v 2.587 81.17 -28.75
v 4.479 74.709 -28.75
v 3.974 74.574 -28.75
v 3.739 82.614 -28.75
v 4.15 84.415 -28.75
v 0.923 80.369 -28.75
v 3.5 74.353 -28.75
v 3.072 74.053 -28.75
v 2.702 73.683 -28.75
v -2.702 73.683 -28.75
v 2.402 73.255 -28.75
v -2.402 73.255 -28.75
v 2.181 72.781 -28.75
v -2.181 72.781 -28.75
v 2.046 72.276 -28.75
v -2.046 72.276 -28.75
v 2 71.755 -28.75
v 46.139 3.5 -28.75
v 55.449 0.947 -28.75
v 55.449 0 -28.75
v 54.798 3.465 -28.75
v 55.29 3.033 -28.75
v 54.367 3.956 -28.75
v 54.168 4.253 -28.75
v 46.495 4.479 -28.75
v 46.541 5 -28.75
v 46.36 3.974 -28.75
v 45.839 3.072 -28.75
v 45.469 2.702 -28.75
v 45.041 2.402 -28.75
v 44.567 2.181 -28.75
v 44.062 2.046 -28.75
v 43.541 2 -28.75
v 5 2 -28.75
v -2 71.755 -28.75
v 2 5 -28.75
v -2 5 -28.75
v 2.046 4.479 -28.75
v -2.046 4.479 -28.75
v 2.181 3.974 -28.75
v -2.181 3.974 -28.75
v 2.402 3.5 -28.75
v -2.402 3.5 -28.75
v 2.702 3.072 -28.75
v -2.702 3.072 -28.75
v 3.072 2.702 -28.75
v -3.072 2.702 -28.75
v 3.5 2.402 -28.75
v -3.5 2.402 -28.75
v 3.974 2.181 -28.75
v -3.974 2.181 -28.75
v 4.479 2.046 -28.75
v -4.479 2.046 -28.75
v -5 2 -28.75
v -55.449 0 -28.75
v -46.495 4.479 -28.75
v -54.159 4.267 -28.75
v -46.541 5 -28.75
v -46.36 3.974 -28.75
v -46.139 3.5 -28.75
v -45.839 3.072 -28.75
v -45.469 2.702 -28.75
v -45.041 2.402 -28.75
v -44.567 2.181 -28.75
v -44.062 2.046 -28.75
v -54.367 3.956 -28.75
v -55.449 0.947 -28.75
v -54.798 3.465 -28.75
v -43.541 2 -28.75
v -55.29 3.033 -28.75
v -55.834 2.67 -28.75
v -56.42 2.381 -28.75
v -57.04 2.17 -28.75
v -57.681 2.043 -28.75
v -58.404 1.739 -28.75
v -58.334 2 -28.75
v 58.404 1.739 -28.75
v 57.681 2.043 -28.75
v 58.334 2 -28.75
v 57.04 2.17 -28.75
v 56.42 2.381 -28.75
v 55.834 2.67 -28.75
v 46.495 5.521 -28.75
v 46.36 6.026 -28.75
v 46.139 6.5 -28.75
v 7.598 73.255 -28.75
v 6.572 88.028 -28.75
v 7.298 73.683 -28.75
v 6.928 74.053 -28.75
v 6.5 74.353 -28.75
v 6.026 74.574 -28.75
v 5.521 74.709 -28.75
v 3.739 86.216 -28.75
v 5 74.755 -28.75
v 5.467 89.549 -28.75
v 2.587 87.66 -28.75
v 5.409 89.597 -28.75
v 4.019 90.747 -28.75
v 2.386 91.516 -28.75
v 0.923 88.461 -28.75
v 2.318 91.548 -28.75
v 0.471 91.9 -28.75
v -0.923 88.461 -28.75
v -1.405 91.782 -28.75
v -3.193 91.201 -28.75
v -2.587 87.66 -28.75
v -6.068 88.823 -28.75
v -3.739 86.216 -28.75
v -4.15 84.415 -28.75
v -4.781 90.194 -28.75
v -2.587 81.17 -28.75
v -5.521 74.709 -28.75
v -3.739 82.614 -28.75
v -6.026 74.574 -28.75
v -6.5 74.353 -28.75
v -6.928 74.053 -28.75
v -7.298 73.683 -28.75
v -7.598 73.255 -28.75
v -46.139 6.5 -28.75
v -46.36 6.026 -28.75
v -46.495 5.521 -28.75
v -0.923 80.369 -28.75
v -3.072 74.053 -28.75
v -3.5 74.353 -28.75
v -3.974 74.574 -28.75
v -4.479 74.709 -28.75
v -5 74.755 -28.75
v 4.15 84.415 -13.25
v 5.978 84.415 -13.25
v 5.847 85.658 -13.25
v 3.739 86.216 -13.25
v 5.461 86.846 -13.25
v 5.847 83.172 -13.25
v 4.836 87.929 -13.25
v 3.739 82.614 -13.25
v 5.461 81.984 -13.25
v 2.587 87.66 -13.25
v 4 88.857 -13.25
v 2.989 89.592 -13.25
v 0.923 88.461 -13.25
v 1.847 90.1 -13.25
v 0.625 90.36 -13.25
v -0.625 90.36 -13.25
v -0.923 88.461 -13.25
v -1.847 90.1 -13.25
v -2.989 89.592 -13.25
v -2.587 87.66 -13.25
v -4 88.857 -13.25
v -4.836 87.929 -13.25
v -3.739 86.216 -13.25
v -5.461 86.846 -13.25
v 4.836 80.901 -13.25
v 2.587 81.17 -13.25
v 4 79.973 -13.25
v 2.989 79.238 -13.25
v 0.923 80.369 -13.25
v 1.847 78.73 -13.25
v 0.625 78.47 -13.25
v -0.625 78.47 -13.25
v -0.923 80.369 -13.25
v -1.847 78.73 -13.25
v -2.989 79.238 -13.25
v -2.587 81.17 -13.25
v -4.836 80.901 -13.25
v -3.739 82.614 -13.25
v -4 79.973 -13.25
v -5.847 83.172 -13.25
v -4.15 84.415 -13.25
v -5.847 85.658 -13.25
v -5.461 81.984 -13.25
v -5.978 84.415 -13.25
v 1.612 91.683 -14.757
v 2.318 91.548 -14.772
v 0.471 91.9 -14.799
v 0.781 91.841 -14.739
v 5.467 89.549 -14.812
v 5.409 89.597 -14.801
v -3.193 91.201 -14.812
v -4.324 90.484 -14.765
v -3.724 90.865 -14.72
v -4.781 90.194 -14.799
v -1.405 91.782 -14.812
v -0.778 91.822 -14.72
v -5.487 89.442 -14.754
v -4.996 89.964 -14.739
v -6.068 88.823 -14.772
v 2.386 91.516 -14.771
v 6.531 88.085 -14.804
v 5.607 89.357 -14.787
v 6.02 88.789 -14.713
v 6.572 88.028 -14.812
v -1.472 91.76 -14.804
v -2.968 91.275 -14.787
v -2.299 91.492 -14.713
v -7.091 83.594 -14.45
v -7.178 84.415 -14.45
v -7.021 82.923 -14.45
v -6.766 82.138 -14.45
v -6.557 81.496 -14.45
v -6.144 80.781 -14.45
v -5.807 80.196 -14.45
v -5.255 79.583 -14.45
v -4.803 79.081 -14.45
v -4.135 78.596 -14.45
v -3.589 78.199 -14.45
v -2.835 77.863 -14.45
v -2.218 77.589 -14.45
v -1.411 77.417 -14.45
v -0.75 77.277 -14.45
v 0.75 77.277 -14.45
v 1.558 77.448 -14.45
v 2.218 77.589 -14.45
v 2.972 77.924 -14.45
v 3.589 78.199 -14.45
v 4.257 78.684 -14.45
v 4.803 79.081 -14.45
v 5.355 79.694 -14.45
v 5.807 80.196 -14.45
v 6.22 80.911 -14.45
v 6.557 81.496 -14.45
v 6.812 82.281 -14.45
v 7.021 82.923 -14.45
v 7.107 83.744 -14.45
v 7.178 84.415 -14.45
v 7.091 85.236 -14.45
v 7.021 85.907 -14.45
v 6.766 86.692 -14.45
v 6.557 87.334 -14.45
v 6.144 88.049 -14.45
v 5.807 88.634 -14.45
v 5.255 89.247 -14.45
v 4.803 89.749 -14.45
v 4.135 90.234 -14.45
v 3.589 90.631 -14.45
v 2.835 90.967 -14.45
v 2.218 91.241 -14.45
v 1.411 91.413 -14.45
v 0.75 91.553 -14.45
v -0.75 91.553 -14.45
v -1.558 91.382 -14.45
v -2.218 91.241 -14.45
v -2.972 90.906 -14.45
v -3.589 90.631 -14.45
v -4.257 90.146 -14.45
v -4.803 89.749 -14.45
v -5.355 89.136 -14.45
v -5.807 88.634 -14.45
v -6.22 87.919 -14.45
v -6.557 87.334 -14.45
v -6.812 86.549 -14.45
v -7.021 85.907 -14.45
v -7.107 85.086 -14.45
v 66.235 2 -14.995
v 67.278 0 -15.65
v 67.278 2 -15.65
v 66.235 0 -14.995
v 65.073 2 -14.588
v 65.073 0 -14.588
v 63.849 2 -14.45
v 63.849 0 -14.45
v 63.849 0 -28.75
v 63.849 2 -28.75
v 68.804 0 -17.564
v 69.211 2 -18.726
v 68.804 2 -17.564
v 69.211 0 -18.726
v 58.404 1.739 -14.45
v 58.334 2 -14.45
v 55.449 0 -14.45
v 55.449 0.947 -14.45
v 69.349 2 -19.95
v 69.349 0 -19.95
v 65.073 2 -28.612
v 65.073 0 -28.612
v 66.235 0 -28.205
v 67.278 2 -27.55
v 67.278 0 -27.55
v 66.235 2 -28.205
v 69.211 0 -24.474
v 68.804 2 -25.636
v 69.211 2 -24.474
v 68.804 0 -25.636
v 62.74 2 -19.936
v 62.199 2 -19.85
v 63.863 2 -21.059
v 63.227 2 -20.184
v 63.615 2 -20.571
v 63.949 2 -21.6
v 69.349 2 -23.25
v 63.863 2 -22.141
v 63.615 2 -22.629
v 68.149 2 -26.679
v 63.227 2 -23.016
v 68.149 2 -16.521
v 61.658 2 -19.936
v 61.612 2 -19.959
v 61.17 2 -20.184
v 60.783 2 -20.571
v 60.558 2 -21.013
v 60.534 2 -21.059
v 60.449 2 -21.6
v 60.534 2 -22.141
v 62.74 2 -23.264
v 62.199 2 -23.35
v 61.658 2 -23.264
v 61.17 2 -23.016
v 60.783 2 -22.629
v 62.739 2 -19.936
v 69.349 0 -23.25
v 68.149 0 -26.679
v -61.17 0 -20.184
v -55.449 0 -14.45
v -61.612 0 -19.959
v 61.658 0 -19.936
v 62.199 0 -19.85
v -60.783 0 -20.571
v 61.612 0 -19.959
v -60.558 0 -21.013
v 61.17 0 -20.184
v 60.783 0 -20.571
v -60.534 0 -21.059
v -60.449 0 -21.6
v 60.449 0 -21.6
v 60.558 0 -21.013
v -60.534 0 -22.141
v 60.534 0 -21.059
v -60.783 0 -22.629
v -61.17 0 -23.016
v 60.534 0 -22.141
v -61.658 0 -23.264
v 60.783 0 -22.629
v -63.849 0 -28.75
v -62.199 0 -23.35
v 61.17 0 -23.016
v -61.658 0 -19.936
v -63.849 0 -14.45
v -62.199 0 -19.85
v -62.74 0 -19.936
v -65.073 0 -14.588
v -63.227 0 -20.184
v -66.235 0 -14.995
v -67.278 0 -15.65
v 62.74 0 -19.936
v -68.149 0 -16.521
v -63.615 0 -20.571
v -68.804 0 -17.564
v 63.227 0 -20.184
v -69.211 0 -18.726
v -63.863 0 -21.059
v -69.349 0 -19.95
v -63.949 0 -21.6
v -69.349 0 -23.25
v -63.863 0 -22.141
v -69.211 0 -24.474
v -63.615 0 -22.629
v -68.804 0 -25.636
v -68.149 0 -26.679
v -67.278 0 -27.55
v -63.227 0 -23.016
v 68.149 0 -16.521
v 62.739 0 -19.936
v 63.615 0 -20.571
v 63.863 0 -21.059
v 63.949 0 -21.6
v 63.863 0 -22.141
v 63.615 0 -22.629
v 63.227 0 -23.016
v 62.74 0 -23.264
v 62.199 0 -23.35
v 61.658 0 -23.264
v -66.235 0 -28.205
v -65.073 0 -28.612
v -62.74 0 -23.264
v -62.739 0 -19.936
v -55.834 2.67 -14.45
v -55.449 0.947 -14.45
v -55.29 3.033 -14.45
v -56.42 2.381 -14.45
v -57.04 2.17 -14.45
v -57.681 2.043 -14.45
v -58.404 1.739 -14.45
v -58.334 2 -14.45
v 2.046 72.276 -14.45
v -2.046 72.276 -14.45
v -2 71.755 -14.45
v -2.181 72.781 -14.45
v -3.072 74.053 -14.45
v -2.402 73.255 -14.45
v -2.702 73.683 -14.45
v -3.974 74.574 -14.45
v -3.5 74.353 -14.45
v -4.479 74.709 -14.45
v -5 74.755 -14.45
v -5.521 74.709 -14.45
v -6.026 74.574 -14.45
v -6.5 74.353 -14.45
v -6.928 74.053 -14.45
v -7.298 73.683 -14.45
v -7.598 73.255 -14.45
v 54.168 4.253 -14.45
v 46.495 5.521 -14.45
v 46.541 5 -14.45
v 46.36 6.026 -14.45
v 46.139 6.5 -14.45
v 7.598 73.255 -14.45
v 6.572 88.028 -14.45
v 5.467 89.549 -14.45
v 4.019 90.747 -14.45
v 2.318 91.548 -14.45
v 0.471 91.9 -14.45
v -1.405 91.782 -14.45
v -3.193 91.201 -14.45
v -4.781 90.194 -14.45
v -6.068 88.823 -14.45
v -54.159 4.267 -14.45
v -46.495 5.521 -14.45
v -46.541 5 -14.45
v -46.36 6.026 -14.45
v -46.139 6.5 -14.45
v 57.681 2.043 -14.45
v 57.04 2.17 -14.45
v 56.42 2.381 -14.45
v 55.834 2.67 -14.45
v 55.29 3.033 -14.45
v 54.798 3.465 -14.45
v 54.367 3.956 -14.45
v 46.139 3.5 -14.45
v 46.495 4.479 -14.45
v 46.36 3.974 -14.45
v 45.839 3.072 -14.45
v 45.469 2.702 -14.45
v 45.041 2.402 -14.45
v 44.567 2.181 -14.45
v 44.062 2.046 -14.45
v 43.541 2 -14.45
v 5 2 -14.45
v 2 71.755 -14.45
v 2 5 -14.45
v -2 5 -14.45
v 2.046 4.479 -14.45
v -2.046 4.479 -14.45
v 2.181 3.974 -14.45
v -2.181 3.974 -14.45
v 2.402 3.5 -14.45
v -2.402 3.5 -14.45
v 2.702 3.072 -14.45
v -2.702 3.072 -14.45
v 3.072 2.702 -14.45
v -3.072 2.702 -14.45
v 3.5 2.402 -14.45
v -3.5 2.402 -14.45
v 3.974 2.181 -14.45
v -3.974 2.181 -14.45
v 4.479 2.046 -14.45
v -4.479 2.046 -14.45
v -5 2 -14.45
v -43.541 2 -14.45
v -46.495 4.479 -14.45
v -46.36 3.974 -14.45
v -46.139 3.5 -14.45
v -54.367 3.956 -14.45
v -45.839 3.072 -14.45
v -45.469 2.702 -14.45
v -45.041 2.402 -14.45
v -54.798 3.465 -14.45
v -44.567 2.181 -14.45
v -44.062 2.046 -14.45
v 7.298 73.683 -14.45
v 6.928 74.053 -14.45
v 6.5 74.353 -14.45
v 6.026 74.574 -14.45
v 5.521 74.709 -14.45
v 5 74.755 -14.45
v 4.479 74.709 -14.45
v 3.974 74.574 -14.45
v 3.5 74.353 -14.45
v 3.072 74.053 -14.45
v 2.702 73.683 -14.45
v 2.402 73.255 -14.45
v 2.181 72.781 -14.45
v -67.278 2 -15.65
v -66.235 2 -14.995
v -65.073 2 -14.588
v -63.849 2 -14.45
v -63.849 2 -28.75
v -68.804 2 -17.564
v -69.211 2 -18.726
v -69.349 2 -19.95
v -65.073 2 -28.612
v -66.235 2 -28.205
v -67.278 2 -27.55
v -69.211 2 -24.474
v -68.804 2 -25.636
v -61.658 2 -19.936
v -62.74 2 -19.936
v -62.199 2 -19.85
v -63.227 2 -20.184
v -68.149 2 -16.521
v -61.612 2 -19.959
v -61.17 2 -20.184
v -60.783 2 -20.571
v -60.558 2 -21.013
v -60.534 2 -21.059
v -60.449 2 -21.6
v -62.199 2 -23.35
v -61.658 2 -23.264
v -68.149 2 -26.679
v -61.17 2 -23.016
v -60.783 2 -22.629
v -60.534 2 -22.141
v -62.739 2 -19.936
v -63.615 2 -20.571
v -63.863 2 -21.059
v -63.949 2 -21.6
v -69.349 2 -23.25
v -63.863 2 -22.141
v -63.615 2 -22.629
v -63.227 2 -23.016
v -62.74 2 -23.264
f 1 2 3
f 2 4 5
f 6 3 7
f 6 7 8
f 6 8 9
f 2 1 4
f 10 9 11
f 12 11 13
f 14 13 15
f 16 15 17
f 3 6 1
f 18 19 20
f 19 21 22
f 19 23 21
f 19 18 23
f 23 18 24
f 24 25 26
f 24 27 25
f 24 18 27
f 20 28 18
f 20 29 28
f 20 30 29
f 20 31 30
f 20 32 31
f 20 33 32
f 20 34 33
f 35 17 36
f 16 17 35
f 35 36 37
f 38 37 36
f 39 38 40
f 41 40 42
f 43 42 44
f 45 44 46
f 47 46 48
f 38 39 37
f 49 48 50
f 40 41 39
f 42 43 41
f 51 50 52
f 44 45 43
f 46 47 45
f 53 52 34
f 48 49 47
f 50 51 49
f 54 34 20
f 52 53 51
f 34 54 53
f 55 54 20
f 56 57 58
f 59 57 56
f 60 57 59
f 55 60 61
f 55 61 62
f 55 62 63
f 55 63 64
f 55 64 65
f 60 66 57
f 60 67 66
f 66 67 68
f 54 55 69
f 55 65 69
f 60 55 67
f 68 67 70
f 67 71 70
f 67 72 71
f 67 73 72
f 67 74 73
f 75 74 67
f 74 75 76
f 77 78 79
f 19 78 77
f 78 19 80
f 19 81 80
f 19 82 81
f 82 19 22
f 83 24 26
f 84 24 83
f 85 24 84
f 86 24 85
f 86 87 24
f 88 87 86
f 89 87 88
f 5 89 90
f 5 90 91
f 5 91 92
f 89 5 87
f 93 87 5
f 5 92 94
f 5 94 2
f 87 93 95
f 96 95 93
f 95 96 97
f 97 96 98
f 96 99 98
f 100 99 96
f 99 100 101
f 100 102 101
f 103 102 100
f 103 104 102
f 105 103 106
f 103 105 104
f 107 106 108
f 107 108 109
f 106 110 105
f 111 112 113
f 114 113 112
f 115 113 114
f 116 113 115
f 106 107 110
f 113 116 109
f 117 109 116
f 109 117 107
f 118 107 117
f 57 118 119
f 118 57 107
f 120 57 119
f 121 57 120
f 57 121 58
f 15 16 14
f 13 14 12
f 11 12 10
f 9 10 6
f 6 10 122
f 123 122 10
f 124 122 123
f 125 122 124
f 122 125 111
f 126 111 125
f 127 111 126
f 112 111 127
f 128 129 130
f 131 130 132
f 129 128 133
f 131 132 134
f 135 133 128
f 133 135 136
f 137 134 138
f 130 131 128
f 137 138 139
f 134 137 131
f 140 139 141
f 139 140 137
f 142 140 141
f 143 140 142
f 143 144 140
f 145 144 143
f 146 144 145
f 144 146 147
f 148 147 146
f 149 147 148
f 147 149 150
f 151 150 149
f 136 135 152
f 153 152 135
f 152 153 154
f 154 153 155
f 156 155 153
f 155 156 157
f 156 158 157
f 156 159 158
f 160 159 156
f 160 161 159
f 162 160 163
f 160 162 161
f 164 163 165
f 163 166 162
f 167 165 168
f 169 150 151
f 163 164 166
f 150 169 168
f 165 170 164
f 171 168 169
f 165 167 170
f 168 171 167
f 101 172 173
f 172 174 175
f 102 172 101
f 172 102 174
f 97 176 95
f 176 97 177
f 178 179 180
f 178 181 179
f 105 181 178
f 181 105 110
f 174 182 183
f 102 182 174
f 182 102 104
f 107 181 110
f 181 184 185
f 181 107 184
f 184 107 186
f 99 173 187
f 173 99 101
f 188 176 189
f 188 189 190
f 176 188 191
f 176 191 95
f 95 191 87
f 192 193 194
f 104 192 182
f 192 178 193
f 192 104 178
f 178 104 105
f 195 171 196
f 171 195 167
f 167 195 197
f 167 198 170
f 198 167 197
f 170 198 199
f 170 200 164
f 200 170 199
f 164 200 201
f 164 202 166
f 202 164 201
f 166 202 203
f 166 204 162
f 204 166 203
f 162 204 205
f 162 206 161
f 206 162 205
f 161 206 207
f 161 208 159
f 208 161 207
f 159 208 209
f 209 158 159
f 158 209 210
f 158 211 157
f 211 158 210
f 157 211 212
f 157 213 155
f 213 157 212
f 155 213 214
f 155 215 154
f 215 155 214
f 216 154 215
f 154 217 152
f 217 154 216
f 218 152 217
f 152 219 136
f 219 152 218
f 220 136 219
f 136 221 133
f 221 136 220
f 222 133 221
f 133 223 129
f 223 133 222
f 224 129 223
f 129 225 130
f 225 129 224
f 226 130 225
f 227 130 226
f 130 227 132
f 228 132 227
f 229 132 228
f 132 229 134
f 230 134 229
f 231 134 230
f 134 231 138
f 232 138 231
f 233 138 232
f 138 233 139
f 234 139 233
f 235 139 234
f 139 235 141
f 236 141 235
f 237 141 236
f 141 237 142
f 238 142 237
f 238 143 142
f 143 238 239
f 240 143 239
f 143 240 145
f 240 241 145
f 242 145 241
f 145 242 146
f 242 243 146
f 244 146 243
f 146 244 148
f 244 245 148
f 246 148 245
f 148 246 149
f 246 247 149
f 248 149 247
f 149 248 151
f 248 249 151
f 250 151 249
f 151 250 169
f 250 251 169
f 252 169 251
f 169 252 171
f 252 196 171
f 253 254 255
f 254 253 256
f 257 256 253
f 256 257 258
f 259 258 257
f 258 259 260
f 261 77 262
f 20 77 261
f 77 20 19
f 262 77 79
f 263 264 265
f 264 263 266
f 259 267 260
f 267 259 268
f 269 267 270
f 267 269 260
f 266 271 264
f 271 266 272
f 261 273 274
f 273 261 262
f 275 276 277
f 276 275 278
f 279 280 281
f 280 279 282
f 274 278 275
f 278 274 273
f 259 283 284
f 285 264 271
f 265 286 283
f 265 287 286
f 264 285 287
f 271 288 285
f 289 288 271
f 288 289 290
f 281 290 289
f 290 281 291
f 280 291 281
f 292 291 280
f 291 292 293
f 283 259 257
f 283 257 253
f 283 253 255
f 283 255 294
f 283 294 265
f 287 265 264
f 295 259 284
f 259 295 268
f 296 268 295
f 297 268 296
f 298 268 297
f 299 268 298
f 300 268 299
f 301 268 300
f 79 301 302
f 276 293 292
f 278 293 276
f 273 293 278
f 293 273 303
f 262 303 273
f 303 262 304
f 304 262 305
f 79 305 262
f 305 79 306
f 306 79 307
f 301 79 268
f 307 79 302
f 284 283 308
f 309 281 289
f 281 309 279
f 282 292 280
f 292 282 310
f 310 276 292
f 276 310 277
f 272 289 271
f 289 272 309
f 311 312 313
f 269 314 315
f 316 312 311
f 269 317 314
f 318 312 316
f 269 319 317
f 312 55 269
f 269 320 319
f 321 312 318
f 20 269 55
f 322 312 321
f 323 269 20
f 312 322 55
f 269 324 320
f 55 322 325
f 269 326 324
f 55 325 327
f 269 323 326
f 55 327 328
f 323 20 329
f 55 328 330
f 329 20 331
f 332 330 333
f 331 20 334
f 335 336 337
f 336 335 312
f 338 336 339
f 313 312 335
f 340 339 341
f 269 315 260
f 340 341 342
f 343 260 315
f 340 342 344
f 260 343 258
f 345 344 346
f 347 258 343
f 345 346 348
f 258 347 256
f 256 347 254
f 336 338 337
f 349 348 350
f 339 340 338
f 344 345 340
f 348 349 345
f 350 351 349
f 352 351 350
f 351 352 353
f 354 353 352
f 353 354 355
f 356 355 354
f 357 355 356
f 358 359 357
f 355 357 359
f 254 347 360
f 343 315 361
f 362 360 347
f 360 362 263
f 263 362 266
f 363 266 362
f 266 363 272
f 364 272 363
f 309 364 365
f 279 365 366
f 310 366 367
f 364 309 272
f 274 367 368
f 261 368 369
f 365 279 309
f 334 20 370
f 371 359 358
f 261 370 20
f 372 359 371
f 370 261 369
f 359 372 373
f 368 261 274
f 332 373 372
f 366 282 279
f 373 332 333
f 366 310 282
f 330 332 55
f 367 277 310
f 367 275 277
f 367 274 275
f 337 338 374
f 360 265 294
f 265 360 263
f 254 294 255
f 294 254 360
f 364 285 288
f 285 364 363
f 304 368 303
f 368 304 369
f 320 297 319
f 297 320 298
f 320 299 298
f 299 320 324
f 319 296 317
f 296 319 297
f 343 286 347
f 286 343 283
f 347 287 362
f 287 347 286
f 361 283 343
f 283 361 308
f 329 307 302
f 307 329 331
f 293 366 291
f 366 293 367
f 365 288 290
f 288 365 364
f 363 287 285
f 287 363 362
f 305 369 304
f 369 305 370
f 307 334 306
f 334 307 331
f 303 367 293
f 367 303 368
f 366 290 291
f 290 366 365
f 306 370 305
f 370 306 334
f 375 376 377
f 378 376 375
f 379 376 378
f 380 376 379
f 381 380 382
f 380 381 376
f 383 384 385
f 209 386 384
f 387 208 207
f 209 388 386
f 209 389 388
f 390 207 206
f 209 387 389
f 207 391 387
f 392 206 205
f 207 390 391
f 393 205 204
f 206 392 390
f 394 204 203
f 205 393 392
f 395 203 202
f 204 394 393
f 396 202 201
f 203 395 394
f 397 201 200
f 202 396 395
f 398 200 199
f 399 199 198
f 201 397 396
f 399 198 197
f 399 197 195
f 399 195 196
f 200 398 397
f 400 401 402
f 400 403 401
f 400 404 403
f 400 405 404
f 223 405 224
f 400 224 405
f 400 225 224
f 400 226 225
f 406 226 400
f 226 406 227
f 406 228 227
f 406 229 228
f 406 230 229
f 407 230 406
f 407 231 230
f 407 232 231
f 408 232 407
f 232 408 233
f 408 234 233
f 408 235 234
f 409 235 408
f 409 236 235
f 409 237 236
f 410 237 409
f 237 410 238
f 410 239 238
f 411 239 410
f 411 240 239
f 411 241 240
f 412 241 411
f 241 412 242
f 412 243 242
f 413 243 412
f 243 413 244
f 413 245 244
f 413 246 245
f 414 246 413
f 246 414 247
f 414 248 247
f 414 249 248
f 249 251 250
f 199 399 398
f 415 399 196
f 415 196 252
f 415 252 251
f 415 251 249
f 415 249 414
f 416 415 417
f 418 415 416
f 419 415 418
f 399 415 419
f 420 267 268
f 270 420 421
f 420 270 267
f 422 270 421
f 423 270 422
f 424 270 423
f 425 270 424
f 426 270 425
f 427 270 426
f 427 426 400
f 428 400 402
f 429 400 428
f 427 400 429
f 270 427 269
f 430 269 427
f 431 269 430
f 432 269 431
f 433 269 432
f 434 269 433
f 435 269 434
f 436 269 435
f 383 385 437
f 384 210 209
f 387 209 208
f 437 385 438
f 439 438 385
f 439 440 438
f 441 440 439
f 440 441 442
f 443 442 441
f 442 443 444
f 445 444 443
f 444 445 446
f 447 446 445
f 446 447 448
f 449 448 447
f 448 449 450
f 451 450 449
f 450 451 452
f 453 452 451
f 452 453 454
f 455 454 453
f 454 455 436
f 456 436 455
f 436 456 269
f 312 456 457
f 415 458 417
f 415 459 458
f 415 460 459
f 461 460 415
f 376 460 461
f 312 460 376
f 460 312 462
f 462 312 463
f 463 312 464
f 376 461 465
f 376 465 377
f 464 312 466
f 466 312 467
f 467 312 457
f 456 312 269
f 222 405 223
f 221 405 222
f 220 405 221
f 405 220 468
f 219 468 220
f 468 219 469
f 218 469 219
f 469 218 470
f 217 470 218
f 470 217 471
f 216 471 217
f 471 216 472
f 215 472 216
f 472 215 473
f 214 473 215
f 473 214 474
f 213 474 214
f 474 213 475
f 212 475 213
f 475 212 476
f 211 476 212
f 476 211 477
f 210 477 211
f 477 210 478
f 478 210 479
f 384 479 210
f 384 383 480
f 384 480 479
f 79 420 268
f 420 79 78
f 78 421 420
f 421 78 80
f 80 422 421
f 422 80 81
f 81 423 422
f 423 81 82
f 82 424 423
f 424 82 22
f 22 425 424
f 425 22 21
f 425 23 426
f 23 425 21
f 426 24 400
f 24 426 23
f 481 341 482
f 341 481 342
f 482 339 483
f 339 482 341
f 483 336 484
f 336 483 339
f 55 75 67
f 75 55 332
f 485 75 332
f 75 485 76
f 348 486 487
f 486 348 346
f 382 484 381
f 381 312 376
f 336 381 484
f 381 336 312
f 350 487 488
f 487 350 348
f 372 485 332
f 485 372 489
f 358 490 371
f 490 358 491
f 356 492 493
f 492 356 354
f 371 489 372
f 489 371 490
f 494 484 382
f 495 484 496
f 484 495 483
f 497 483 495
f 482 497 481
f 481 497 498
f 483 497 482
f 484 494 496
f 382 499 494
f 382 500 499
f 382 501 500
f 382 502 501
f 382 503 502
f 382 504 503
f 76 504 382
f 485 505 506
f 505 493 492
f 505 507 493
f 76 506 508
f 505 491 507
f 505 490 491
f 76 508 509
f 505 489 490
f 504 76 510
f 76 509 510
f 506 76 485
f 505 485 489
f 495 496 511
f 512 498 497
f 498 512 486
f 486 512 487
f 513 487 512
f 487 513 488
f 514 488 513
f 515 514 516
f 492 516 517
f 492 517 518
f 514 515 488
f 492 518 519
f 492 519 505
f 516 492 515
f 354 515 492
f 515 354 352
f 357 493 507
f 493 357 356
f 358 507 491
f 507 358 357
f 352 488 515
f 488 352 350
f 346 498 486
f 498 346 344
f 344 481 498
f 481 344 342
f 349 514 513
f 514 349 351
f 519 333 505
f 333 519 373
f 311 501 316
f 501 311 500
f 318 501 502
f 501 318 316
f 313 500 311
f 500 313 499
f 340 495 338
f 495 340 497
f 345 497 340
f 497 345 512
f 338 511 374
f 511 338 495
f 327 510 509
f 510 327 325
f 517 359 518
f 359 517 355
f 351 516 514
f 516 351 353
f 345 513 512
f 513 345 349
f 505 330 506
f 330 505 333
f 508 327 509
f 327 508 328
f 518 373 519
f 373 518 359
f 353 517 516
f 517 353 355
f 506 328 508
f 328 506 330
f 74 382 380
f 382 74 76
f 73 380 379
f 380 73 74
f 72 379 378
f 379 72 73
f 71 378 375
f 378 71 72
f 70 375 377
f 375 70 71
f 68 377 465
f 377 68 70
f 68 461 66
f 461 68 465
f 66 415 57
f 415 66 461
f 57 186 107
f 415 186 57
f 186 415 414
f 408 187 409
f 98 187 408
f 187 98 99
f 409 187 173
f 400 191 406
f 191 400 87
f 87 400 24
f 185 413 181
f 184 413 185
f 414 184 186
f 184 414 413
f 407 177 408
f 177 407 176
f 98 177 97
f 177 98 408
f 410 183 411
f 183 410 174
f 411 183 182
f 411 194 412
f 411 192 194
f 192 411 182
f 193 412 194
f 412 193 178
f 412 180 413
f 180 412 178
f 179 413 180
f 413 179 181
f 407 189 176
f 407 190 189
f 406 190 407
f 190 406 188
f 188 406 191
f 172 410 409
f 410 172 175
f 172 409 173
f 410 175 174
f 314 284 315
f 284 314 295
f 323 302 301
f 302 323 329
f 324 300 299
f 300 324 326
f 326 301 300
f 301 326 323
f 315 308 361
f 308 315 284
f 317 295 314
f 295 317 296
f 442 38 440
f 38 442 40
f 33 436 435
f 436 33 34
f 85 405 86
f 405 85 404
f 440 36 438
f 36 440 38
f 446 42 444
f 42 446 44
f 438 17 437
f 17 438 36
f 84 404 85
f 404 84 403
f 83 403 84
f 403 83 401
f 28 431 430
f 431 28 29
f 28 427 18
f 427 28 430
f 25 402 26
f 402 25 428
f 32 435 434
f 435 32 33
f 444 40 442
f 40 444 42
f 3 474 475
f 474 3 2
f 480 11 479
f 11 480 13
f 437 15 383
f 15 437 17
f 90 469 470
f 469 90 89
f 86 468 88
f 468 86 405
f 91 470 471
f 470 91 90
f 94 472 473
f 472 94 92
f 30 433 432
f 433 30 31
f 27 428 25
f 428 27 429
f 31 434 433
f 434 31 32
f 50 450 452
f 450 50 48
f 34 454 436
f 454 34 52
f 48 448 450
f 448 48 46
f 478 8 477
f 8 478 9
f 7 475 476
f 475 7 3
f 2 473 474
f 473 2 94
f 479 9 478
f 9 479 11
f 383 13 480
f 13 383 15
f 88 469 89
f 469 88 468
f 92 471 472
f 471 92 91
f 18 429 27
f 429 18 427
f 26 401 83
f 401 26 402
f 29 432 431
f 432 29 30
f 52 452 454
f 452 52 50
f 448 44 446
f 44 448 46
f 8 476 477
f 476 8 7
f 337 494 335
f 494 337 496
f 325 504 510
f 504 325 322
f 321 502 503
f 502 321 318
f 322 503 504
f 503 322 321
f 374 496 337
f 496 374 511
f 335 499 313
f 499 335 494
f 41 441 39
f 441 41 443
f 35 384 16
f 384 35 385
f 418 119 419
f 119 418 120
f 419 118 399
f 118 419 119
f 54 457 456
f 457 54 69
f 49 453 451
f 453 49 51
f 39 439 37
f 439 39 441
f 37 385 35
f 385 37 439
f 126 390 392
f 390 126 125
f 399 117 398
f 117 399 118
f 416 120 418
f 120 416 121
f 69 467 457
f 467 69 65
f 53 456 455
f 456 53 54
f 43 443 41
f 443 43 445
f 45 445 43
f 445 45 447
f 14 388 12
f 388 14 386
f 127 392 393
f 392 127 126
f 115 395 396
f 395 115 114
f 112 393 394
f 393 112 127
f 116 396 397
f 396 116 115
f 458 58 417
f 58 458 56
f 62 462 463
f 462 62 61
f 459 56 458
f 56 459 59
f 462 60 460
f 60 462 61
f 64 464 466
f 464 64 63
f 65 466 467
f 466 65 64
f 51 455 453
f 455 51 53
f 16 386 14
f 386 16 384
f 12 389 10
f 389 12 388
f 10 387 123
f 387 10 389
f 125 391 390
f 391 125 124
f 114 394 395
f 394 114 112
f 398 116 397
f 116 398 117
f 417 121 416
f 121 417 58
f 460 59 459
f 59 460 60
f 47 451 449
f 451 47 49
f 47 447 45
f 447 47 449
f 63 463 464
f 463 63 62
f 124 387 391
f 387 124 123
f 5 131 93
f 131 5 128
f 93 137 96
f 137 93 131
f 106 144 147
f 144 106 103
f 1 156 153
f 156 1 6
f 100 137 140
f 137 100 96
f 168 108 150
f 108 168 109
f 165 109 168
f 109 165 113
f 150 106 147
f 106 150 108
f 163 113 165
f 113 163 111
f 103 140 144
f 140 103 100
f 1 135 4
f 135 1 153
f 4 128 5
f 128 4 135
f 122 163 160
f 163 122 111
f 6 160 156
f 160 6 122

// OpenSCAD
// file: parameters.scad
// Parameters shared between modules
Base_th = 2;
Beam_width = 15;
Wiggle = 0.25;
Fat_beam_width = Beam_width + Wiggle;
Beam_length = 400;
Wall_th = 2.5;
Min_beam_width = 12.5;
Max_beam_width = 17.5;
Zip_th = 2;
Zip_h = Zip_th + Max_beam_width - Min_beam_width;
Zip_w = 5.0;
Nema17_cube_width          = 42.43;
Nema17_screw_hole_width    = 43.74; // Opposite corner screws
Nema17_ring_diameter       = 22;
Nema17_cube_height         = 39.36;
Nema17_shaft_height        = 63.65;
Nema17_ring_height         = 2;
Nema17_shaft_radius        = 5/2;
b608_outer_dia = 22.2;
b608_width = 7.05;
b608_bore_r = 4;
Gap_between_sandwich_and_plate = 1.5 + Base_th; // 1.5 mm for wiggle
Motor_bracket_flerp_r = 6;
Motor_bracket_flerp = 14;
Motor_bracket_cw = Nema17_cube_width + 6;
Motor_bracket_att_ang = 50;
Mounting_screw_d = 3.5;
Mounting_screw_head_d = 14;
Spool_outer_wall_th = 4;

// Corner clamp parameters
Cc_l1 = (Fat_beam_width+2*Wall_th)*2*sqrt(3);
Cc_rad_b = 4;
Cc_action_point_from_mid = Cc_l1/sqrt(3)-2*Cc_rad_b-7;  // 5 chosen arbitrarily
Cc_plastic_length = sqrt(Cc_action_point_from_mid*Cc_action_point_from_mid
                       - (Cc_action_point_from_mid/2)*(Cc_action_point_from_mid/2));

// The distance between the two action points on the mover
Sidelength = Beam_length + 2*Cc_plastic_length;

/////// Gear parameters ////////////
Circular_pitch = 262;
Motor_teeth = 10;
Gear_height = 21.4-3;
Motor_pitch                      = (Motor_teeth*Circular_pitch/360);
Motor_pitch_diametrial           = Motor_teeth/(2*Motor_pitch);
Motor_outer_radius               = Motor_pitch + 1/Motor_pitch_diametrial;
Spool_teeth = 100;
Spool_r = 75;
Spool_height = 8;
Spool_pitch                      = (Spool_teeth*Circular_pitch/360);
Spool_pitch_diametrial           = Spool_teeth/(2*Spool_pitch);
Spool_outer_radius               = Spool_pitch + 1/Spool_pitch_diametrial;
Sep_disc_radius = 161.83/2; // Made to match 255 teeth gt2 pulley
Motor_bracket_depth = Gear_height+1+7+Nema17_ring_height+1+Gap_between_sandwich_and_plate;
Spool_core_flerp0 = 16+3;

/////// Lineroller parameters ////////////
b623_width  = 4;
b623_bore_r = 3/2;
b623_vgroove_big_r = 12/2;
b623_vgroove_small_r = 10/2;
b623_outer_dia = 10;

Depth_of_roller_base = 18;
Roller_flerp = 6;
Roller_l = 42;
Roller_fl = (Roller_l - Depth_of_roller_base)/2;

Line_roller_wall_th = 5;

Line_roller_ABC_winch_h =  Gap_between_sandwich_and_plate
                           + Sep_disc_radius
                           - Spool_r
                           + Depth_of_roller_base/2
                           + b623_vgroove_small_r;


Ptfe_r = 2.1;
Roller_base_r = 8;
Screw_h = 2;
Screw_head_h = 2;
M3_screw_head_d = 5.8;
Spool_center_bearing_wall_th = 5;
Corner_clamp_bearings_center_to_center = 15;
Anchor_bearings_center_to_center = Corner_clamp_bearings_center_to_center + b623_outer_dia;

//// Lineroller anchor parameters /////

Back_bearing_x = b623_vgroove_big_r + 1.5;
Front_bearing_x = -b623_vgroove_big_r - 5;
Move_tower = -12.2;
Lower_bearing_z = 13;
Higher_bearing_z = Lower_bearing_z + Corner_clamp_bearings_center_to_center;

//// Cable Clamp parameters /////
Bit_width = 12;
Cable_r=2.5;


//// Donkey and encoder parameters /////

Donkey_shaft_d = 6;
Donkey_h = 65.12;
Donkey_body_d = 50;
Donkey_feet_th = 3.5;

Encoder_LDP3806_shaft_d = 6;
Encoder_LDP3806_d = 38;

// Belt drive parameters
GT2_belt_width = 6.5;
GT2_gear_height = GT2_belt_width + 2;
GT2_motor_gear_height = 16;
GT2_motor_gear_outer_dia = 16;
GT2_spool_gear_teeth = 255;
GT2_motor_gear_teeth = 20;
Torx_depth = GT2_gear_height/2;
Belt_roller_h = 56;
Belt_thickness = 1.4;

// Spacer parameters
Sandwich_ABC_width = 2*(1+Spool_height) + GT2_gear_height;
Sandwich_D_width = 3*(1+Spool_height) + GT2_gear_height;

Spacer_ABC_width = Sandwich_ABC_width - 2*b608_width;
Spacer_D_width = Sandwich_D_width -2*b608_width;


spd = Spool_height+GT2_gear_height;
// Horizontal_deflector_cube_y_size must be exact this number
// because we want to deflect AB-lines
// 60 degrees on the ceiling unit, and we want to put two
// deflectors in a row and get a distance between bearings
// that maintain the distance d when deflecting 60 degrees
Horizontal_deflector_cube_y_size = (2/sqrt(3))*spd;


// Top plate parameters needed for layout slicer
Yshift_top_plate = -300;
// main file
include <parameters.scad>
use <util.scad>

bearing_z = Sep_disc_radius+Gap_between_sandwich_and_plate;

//placed_sandwich_ABC();
module placed_sandwich_ABC(){
  translate([0,
             1 + Spool_height + GT2_gear_height/2,
             bearing_z])
    rotate([90,0,0]){
      sandwich_ABC();
      b608();
      translate([0,0,b608_width])
        spacer_ABC();
      translate([0,0,1+Spool_height+GT2_gear_height+Spool_height+1-b608_width])
        b608();
    }
}

//spool_core_halve();
module spool_core_halve(twod = false, between){
  w = 15.5; // Width including the lip onto b608
  liplen = 1.2;
  wml = w - liplen; // w minus liplen

  module bit(){
    rotate([0,0,90])
    translate([-wml/2, -wml/2, 0])
    difference(){
      left_rounded_cube2([wml+4,wml,Base_th], 5.5, $fn=28);
      translate([wml/2, wml/2, -1])
        cylinder(d=Mounting_screw_d, h=Base_th+2, $fn=20);
    }
  }

  cubex = 2*bearing_z/sqrt(3)+sqrt(3)*w/2;
  if(!twod){
    difference(){
      union(){
        hull(){
          translate([0,between/2 + liplen,bearing_z])
            rotate([-90,0,0])
            cylinder(d=15, h=wml, $fn=25);
          translate([-cubex/2, between/2 + liplen, 0])
            cube([cubex, wml, Base_th]);
        }
        translate([0,between/2,bearing_z])
          rotate([-90,0,0])
          b608_lips(w);
        for(k=[0,1])
          mirror([k,0,0]){
            translate([cubex/2 + w/2 - 1,between/2 +wml/2 + liplen,0])
              rotate([0,0,90])
              bit();
            translate([cubex/2 - 0.53, wml + between/2+liplen, Base_th - 0.915])
              rotate([90,0,0])
              rotate([0,0,15])
              inner_round_corner(r=5, h=wml, ang=60, $fn=12*4);
          }
      }
      translate([0,0,bearing_z])
        rotate([90,0,0])
        cylinder(d=8.3, h=100, center=true);
      for(k=[0,1])
        mirror([k,0,0]){
          translate([2,w+1 + between/2 + liplen - 1,Base_th])
            rotate([90,0,0])
            rounded_spectri(2*bearing_z/sqrt(3)-4, w+1, 3, $fn=12*3);
          translate([cubex/2 + w/2 - 1,between/2 +wml/2 + liplen,2.3])
            rotate([0,0,90])
            Mounting_screw_countersink();
        }
    }
  } else {
    difference(){
      translate([-cubex/2 - 13.9, between/2 + liplen])
        rounded_cube2_2d([cubex+2*13.9, wml], 5.5, $fn=28);
      for(k=[0,1])
        mirror([k,0])
          translate([-cubex/2 - w/2 + 1 , between/2 + liplen + wml/2])
            Mounting_screw_countersink(twod=true);
    }
  }
}

//spool_cores(false, Sandwich_ABC_width);
//#spool_cores(true, Sandwich_ABC_width);
module spool_cores(twod=false, between){
  for(k=[0,1])
    mirror([0,k,0])
    spool_core_halve(twod, between);
}

// For printing
spool_core();
module spool_core(){
  rotate([-90,0,0])
    spool_core_halve(false, Sandwich_ABC_width);
}
